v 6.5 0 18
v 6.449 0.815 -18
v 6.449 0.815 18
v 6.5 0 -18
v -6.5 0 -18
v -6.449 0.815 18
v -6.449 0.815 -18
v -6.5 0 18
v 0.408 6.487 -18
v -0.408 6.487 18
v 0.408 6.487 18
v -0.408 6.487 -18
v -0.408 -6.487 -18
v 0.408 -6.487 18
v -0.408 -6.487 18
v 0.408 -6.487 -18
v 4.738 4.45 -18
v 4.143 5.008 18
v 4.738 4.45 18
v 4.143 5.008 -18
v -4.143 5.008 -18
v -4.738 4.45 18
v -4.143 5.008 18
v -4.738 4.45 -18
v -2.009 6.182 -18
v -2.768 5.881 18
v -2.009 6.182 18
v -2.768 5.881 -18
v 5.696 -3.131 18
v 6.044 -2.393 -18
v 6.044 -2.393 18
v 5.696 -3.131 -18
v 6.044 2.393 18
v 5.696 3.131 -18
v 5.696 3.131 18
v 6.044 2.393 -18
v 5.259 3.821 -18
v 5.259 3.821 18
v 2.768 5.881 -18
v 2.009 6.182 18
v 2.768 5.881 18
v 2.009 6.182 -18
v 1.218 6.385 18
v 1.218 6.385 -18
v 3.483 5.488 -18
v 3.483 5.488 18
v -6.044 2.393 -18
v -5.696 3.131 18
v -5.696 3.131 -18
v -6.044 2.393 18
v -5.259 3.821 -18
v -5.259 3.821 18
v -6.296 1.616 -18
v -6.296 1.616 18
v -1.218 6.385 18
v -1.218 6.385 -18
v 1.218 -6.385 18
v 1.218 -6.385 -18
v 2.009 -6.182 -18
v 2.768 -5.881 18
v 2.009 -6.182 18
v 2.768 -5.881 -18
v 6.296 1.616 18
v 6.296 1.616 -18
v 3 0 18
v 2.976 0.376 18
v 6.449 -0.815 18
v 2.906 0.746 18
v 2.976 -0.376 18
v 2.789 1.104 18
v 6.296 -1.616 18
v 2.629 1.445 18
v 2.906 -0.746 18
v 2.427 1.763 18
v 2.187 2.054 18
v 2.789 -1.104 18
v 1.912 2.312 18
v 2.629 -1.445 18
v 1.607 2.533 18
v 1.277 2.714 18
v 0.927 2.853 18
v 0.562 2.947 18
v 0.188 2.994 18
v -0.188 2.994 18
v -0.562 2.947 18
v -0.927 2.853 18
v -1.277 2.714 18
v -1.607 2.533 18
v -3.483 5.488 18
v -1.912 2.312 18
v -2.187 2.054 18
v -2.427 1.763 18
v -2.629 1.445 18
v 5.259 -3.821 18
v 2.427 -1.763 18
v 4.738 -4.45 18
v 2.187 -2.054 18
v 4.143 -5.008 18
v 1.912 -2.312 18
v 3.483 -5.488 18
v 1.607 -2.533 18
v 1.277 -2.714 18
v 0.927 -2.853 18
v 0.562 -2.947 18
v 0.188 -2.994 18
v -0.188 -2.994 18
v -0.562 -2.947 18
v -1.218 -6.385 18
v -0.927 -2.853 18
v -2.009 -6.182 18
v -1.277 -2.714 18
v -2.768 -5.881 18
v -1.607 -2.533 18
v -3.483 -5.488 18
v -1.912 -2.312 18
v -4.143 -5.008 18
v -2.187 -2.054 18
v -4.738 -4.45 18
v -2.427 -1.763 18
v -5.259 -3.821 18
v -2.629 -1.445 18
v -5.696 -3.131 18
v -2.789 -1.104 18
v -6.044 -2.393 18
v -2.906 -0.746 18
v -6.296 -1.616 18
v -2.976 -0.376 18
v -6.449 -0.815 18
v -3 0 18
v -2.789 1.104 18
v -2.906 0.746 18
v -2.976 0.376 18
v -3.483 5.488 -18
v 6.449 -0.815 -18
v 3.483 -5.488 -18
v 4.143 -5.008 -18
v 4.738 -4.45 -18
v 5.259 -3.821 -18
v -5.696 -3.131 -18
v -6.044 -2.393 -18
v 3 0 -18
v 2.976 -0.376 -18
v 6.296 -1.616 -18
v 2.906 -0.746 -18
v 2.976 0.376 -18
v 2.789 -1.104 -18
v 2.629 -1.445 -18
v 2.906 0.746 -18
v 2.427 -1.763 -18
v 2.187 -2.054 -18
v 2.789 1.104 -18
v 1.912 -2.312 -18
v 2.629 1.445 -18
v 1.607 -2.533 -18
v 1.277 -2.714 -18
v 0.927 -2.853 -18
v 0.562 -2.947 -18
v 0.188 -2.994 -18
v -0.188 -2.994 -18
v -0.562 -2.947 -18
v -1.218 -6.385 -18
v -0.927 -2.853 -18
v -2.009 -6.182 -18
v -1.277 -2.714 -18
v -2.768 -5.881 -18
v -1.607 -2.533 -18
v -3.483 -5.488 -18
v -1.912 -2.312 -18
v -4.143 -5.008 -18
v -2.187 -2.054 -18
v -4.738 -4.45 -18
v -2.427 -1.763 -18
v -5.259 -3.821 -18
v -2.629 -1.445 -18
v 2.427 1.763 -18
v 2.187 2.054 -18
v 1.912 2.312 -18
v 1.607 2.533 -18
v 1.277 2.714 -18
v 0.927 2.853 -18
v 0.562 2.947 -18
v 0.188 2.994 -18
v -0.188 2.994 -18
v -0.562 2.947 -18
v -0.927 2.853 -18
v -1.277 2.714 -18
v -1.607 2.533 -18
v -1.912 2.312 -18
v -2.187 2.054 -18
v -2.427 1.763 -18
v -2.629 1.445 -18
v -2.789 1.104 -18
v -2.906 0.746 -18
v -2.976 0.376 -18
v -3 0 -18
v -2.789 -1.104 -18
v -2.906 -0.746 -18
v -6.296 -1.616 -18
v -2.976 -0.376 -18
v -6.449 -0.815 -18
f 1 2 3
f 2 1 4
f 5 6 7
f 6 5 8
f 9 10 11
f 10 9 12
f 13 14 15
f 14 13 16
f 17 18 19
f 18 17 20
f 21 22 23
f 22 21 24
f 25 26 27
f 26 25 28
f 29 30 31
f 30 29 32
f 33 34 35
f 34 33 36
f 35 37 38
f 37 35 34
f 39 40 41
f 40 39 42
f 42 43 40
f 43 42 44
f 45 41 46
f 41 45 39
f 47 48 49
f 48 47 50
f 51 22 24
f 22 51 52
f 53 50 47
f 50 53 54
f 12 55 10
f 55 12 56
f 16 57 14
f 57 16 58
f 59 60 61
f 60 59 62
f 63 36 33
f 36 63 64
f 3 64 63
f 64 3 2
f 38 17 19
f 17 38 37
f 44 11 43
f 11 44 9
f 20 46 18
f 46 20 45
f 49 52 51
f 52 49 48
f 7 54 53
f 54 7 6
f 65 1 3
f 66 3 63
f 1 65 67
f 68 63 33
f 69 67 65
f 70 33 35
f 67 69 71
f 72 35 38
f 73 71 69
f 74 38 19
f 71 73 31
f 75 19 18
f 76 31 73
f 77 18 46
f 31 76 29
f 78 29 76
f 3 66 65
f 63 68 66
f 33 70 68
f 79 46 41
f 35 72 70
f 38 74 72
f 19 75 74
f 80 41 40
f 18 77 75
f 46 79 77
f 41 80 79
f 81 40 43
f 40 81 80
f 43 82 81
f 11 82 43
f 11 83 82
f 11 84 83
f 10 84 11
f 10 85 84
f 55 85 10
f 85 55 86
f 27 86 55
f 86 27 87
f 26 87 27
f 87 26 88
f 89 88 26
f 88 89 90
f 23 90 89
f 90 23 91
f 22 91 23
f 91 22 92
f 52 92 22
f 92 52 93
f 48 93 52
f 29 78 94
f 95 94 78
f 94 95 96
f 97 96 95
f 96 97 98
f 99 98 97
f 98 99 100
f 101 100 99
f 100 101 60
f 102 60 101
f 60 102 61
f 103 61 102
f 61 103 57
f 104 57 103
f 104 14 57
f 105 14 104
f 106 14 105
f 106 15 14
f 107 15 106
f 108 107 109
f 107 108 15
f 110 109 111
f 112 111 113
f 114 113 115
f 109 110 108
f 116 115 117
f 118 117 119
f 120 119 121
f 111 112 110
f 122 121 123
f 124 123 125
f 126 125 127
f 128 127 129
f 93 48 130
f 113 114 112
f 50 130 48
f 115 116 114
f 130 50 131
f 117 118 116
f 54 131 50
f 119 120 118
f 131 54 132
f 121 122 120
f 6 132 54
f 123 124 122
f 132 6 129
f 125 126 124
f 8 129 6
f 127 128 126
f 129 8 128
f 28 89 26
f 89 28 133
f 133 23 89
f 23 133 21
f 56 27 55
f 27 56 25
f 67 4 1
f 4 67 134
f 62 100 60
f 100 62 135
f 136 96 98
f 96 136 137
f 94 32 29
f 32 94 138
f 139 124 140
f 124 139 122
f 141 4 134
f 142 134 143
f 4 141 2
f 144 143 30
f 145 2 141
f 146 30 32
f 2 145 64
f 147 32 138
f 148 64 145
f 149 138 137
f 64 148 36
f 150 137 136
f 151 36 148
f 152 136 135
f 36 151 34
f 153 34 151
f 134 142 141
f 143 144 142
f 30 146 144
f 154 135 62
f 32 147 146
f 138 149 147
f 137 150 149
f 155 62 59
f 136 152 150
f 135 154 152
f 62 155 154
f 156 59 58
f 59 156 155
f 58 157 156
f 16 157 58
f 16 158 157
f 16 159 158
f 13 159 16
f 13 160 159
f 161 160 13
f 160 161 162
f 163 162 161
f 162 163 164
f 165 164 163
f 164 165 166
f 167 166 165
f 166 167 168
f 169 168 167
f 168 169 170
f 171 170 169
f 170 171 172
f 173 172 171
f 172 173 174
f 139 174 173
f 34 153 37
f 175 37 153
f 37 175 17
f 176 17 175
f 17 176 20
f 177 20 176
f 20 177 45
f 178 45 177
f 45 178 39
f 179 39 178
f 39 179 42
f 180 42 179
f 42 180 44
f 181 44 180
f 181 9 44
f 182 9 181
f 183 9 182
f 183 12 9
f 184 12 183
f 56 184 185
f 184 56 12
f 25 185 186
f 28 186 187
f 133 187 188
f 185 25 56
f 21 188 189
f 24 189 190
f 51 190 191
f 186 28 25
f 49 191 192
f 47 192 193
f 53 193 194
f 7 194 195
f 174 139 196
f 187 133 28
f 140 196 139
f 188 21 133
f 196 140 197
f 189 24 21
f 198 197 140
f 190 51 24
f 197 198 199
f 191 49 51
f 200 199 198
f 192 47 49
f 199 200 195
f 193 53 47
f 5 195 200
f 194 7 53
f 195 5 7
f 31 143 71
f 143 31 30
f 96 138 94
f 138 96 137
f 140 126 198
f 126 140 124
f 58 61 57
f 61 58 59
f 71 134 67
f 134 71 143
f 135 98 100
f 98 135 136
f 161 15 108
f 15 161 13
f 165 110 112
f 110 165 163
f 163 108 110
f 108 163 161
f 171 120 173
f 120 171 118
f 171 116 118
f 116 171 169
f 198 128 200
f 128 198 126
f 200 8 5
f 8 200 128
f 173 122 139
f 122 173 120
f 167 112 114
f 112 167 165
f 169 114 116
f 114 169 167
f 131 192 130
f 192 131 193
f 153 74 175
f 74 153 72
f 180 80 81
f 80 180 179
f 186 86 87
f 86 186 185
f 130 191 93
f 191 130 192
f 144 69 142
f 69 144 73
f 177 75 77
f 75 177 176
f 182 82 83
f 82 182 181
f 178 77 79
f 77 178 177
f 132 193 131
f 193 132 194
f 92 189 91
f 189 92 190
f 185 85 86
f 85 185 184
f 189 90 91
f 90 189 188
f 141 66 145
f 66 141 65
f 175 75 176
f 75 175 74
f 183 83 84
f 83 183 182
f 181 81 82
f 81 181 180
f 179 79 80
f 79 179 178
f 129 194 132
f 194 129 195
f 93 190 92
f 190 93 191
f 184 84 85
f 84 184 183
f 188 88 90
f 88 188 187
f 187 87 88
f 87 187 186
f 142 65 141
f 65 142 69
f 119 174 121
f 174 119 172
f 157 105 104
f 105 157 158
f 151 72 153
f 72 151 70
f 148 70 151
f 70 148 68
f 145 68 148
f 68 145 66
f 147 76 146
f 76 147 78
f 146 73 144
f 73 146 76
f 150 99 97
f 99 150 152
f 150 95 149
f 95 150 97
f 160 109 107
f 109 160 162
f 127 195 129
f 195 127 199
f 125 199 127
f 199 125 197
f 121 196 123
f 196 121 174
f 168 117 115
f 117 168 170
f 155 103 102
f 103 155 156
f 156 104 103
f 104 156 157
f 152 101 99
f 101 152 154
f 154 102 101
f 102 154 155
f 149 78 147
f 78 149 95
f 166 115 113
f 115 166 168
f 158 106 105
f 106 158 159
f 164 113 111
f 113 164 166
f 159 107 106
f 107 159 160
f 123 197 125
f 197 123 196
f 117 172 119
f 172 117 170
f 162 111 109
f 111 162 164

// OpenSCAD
$fn = 50;


difference() {
	union() {
		translate(v = [0, 0, -18.0000000000]) {
			cylinder(h = 36, r = 6.5000000000);
		}
	}
	union() {
		translate(v = [0, 0, -100.0000000000]) {
			cylinder(h = 200, r = 3);
		}
	}
}
